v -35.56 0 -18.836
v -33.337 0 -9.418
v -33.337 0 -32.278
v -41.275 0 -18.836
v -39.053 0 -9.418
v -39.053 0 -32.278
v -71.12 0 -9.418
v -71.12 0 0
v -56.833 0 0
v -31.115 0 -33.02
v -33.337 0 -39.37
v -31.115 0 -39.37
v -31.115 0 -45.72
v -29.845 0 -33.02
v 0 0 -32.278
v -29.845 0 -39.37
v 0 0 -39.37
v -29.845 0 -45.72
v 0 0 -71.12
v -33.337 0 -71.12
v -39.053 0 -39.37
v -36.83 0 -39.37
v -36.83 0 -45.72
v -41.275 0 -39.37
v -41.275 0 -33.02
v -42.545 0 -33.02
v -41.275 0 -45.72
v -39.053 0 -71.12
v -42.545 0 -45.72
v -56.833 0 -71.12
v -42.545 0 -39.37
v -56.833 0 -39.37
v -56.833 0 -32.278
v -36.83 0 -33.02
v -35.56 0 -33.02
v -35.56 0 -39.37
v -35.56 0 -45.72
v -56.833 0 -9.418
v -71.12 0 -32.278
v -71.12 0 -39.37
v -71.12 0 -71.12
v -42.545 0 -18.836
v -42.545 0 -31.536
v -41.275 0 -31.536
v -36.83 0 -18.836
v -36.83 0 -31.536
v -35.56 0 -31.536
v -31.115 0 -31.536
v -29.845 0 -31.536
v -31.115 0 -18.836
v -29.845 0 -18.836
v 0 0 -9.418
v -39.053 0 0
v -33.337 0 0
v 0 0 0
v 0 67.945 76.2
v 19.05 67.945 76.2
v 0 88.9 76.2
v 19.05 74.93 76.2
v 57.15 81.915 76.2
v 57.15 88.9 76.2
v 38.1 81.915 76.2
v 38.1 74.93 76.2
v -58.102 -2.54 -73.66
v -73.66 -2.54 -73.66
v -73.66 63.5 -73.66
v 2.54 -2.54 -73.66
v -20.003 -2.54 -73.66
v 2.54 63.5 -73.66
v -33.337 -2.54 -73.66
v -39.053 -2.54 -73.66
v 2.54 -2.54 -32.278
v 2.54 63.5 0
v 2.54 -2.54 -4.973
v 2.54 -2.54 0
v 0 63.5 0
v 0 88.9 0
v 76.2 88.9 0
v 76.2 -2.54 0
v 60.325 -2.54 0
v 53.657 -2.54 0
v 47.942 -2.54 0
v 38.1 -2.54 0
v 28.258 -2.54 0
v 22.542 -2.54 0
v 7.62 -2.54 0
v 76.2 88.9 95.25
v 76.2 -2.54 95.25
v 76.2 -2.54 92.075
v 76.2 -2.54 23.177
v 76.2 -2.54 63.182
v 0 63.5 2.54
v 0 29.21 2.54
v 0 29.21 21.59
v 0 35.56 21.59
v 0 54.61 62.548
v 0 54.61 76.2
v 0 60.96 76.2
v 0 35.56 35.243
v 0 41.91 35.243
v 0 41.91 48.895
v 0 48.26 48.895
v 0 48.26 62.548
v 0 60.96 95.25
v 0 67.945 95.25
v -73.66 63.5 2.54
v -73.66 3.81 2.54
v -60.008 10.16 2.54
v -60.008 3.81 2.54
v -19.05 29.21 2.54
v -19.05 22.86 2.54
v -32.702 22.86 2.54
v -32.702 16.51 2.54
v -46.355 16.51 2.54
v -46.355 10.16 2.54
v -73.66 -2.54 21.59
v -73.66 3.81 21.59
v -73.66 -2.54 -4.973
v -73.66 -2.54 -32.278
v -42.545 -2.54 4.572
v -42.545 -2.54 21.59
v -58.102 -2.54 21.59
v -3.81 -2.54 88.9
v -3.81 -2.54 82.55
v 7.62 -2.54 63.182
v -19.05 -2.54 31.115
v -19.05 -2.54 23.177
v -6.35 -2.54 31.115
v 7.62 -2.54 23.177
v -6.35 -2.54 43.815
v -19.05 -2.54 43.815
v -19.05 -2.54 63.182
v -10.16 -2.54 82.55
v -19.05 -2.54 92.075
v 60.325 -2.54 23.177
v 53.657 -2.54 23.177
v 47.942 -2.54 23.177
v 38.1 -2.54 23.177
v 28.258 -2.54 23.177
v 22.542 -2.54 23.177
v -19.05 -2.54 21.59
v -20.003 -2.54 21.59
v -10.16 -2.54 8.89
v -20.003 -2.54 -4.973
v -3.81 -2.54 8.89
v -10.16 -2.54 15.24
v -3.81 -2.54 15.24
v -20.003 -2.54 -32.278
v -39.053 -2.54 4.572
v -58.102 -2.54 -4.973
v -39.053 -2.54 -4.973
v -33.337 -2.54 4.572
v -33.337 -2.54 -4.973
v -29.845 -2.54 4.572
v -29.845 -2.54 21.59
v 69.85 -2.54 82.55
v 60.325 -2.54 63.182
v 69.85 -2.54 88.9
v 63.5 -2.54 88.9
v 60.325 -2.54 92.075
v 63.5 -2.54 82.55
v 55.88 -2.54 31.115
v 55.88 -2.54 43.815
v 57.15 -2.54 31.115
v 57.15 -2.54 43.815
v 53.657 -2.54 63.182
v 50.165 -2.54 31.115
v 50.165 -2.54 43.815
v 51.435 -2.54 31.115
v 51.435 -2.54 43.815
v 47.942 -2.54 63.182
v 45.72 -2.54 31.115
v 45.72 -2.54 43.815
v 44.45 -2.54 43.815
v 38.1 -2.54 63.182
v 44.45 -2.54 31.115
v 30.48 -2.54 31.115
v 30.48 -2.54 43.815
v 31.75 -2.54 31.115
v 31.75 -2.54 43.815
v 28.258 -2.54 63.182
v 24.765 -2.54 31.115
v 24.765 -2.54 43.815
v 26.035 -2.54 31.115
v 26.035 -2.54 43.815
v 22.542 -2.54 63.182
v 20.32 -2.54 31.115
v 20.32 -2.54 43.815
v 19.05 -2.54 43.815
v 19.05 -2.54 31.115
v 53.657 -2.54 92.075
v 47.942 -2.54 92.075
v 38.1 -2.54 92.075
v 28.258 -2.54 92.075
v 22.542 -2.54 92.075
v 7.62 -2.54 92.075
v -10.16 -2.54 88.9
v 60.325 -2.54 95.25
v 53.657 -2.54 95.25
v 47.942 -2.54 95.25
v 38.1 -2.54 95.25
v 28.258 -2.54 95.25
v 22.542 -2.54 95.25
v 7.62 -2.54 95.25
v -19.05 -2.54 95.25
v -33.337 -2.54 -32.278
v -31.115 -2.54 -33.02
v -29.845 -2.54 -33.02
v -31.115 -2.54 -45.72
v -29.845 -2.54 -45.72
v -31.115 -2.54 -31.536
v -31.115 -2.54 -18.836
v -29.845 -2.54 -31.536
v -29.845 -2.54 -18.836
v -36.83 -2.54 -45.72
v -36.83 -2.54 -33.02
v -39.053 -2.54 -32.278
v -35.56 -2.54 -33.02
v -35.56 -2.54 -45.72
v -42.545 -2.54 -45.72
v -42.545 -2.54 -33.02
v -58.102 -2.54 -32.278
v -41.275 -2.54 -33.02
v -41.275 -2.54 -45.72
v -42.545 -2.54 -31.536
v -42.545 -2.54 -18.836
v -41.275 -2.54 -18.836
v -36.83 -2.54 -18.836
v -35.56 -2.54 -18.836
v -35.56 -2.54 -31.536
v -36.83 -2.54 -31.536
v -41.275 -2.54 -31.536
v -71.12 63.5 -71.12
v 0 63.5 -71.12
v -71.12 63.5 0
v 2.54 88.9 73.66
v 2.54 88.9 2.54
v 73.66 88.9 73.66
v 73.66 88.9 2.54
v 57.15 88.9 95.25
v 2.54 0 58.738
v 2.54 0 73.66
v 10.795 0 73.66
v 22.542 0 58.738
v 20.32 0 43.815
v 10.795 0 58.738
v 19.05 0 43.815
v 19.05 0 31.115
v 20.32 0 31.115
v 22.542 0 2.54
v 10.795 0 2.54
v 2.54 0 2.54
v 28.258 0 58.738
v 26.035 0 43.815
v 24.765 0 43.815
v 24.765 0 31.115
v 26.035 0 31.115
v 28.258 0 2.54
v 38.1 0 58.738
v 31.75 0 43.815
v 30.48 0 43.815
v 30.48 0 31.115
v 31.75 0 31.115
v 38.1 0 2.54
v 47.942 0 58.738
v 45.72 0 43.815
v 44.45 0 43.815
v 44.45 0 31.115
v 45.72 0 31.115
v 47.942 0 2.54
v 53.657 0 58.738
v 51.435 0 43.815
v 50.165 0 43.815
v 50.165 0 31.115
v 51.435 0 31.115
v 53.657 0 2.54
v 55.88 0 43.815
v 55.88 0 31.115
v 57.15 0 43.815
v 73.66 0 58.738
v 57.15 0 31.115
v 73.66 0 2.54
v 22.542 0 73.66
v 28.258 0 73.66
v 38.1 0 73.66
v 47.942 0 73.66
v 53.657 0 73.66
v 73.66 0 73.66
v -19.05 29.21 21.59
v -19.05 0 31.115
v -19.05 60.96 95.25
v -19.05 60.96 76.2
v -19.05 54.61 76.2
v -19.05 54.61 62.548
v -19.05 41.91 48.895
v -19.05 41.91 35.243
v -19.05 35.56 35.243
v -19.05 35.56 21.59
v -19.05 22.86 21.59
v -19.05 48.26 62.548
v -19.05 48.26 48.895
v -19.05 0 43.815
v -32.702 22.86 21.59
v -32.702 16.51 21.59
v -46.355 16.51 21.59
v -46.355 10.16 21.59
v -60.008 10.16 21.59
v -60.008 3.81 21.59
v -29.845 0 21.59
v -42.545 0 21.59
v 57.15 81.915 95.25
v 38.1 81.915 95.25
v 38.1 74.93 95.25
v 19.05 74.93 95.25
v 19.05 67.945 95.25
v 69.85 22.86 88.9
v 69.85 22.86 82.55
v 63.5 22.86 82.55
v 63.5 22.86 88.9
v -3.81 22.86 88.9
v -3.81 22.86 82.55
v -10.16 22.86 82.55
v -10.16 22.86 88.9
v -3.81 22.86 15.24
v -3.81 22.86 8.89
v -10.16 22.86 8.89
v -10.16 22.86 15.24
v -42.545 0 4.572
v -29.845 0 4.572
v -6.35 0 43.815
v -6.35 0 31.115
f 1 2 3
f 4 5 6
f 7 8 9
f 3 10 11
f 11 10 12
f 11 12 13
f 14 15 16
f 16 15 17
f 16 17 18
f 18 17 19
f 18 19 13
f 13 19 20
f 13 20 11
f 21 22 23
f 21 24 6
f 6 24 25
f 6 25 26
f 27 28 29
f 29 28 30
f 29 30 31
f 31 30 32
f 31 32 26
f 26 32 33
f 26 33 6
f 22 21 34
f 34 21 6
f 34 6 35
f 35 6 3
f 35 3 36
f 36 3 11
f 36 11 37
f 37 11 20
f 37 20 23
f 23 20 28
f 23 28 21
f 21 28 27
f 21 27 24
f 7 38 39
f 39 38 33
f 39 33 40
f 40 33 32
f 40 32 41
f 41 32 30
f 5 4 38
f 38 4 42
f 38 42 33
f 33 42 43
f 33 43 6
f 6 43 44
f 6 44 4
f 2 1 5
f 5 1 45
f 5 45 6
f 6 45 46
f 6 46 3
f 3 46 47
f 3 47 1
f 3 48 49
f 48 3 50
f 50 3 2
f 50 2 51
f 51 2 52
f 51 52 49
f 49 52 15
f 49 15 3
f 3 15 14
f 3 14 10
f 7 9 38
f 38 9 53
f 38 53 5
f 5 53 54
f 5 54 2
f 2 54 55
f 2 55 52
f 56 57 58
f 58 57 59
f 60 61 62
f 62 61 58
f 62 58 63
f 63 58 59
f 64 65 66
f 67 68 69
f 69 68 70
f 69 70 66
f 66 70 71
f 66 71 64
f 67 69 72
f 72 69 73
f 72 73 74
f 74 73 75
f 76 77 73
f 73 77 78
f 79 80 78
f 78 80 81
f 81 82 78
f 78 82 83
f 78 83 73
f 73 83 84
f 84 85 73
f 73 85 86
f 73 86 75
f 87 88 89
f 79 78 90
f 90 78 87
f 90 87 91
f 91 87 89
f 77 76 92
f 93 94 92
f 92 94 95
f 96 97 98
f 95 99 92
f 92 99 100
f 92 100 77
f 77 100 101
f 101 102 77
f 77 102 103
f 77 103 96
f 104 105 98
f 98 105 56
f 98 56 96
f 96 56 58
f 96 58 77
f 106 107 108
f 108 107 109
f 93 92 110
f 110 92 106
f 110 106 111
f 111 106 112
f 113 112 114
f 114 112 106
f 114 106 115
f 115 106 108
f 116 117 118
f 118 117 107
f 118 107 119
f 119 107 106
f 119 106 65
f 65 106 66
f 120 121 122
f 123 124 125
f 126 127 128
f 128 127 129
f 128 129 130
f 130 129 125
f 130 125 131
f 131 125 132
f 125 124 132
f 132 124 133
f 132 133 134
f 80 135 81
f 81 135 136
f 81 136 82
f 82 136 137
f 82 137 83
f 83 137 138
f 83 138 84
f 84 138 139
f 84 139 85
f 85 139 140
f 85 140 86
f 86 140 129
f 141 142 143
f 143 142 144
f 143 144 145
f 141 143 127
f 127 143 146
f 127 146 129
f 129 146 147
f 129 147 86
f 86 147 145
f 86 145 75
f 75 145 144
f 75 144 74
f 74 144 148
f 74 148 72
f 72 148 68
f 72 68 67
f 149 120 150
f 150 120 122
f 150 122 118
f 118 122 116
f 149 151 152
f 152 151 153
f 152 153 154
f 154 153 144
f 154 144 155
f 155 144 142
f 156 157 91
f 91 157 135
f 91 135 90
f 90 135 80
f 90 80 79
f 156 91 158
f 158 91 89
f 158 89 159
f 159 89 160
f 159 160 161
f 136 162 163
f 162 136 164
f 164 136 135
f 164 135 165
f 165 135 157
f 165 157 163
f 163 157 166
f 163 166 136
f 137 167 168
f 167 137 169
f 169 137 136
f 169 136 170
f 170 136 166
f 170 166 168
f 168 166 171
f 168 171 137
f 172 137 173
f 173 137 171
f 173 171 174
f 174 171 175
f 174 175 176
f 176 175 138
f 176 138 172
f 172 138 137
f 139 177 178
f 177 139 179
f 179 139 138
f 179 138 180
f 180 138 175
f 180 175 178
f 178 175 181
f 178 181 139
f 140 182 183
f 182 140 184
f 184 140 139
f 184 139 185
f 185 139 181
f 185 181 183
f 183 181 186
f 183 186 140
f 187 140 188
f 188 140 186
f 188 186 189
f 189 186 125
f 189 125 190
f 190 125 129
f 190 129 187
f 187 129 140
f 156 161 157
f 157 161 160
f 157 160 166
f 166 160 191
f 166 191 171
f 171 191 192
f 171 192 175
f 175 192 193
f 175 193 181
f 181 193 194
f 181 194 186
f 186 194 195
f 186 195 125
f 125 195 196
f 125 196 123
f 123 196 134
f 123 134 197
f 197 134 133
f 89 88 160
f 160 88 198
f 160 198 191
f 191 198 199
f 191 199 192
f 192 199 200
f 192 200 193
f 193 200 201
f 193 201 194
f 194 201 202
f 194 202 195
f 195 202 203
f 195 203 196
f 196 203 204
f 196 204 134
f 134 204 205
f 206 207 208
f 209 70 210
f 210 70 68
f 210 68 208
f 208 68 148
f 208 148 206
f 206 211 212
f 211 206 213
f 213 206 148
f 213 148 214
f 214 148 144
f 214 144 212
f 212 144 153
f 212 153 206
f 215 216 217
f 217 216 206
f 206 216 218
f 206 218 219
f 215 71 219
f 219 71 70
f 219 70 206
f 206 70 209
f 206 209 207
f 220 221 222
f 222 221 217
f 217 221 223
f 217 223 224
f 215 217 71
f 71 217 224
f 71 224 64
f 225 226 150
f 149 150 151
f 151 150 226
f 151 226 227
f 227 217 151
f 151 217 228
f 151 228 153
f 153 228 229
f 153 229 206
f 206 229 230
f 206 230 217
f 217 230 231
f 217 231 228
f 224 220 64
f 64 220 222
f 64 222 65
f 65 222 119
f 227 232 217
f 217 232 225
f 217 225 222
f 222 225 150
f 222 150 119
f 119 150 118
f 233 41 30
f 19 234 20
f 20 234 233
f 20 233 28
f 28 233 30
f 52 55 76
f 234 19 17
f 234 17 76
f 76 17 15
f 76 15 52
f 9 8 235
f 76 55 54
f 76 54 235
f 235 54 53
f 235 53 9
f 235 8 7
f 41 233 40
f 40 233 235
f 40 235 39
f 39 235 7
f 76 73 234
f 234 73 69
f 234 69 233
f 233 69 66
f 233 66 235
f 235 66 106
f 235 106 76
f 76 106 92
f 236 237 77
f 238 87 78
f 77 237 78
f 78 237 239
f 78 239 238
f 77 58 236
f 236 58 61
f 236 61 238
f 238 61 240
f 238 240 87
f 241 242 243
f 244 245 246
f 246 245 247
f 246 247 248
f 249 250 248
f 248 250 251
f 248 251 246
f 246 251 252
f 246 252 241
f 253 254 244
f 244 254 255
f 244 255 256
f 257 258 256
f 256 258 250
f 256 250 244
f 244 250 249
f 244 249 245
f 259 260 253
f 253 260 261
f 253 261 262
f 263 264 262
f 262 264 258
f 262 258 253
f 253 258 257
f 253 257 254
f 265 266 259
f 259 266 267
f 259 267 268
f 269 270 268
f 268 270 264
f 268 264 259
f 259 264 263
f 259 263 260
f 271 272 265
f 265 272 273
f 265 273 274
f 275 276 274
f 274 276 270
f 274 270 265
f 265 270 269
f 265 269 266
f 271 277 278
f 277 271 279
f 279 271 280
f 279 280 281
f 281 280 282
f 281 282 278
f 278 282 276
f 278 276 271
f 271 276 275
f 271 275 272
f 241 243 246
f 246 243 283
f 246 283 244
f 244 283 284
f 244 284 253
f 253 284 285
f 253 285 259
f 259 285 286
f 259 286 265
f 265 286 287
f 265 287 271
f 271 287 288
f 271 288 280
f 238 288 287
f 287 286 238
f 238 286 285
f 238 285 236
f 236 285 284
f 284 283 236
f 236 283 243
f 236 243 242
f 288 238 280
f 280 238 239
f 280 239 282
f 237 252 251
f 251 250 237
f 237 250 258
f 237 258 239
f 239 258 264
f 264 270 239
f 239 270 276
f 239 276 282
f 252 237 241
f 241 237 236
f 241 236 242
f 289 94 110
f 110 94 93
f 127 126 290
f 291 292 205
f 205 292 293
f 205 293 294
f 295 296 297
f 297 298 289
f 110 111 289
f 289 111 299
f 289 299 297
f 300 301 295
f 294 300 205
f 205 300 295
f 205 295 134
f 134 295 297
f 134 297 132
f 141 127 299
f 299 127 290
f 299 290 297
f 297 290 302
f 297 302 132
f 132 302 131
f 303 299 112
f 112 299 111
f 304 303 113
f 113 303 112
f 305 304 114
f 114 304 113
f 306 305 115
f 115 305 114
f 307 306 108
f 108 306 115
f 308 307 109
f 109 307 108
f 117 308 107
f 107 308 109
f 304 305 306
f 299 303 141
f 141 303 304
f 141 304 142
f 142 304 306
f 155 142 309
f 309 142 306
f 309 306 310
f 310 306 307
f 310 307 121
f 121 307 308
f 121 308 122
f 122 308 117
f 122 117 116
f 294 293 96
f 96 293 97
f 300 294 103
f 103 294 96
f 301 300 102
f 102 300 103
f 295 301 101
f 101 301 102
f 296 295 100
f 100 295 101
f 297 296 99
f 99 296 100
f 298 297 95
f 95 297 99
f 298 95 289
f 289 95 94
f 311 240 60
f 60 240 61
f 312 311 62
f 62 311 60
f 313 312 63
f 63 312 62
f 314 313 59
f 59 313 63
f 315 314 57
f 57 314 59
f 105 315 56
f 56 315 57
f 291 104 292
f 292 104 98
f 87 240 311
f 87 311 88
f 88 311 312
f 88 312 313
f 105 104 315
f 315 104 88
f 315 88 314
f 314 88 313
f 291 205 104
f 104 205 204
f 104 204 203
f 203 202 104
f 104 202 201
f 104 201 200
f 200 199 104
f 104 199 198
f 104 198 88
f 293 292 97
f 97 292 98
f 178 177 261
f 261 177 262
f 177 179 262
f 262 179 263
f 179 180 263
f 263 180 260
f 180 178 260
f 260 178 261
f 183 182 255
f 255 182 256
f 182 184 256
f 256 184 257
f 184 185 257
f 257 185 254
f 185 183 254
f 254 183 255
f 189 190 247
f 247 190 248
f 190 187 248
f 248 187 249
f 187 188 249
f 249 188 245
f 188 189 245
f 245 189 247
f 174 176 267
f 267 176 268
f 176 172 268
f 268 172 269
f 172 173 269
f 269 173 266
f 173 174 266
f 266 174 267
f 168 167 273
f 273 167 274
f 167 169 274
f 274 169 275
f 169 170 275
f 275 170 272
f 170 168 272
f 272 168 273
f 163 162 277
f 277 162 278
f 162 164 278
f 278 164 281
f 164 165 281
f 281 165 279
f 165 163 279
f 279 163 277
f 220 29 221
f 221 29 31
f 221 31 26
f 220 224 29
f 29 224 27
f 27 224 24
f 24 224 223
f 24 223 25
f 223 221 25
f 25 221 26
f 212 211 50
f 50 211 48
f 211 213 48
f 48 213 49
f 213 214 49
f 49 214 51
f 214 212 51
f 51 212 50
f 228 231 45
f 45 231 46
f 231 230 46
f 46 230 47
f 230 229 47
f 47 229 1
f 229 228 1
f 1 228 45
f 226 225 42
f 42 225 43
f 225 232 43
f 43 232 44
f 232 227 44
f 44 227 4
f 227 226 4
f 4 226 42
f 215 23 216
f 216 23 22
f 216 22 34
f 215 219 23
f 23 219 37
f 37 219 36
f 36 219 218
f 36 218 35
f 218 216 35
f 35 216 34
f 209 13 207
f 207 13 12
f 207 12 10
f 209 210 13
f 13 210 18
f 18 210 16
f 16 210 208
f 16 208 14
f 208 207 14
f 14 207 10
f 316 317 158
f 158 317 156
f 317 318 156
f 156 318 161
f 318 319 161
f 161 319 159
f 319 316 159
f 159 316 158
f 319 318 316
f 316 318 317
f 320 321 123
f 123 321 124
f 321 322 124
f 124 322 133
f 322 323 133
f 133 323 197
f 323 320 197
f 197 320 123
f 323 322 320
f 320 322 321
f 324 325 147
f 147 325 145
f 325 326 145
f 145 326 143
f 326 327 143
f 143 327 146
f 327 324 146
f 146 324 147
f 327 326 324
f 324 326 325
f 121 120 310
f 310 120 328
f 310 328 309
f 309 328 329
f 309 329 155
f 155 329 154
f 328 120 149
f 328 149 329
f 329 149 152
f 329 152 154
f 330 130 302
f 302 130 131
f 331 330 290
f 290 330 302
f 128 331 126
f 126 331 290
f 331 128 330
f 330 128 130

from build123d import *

# Parameters (mm, degrees)
BOSS_EXTRUDE1_DEPTH     = 2.54
SKETCH1_9_W             = 71.12
SKETCH1_9_H             = 71.12
BOSS_EXTRUDE3_DEPTH     = 63.5
SKETCH5_W               = 76.2
SKETCH5_H               = 76.2
SKETCH5_W_2             = 71.12
SKETCH5_H_2             = 71.12
BOSS_EXTRUDE4_DEPTH     = 25.4
BOSS_EXTRUDE7_DEPTH     = 19.05
BOSS_EXTRUDE11_DEPTH    = 19.05
SKETCH15_W              = 19.05
SKETCH15_H              = 6.35
BOSS_EXTRUDE12_DEPTH    = 19.05
SKETCH16_W              = 1.27
SKETCH16_H              = 12.7
CUT_EXTRUDE1_DEPTH      = 151.937776915
SKETCH17_W              = 6.35
SKETCH17_H              = 6.35
CUT_EXTRUDE2_DEPTH      = 25.4
CUT_EXTRUDE3_DEPTH      = 151.937776915
CUT_EXTRUDE3_DEPTH_BACK = 17.018
CUT_EXTRUDE4_DEPTH      = 162.394965845
CUT_EXTRUDE4_DEPTH_BACK = 12.7
SKETCH20_W              = 12.7
SKETCH20_H              = 2.54


with BuildPart() as part:
    # Sketch1 → Boss-Extrude1 (new body)
    with BuildSketch(Plane(origin=(0, 0, 0), x_dir=(1, 0, 0), z_dir=(0, 1, 0))):
        Polygon((-73.66, 73.66), (-73.66, -2.54), (0, -2.54), (0, -76.2), (76.2, -76.2), (76.2, 0), (2.54, 0), (2.54, 73.66), align=None)
    extrude(amount=-BOSS_EXTRUDE1_DEPTH)

    # Sketch1<9> → Boss-Extrude3 (add)
    with BuildSketch(Plane(origin=(0, 0, 0), x_dir=(1, 0, 0), z_dir=(0, 1, 0))):
        Polygon((2.54, 73.66), (-73.66, 73.66), (-73.66, -2.54), (0, -2.54), (0, -76.2), (76.2, -76.2), (76.2, 0), (2.54, 0), align=None)
        with Locations((38.1, -38.1)):
            Rectangle(SKETCH1_9_W, SKETCH1_9_H, mode=Mode.SUBTRACT)
        with Locations((-35.56, 35.56)):
            Rectangle(SKETCH1_9_W, SKETCH1_9_H, mode=Mode.SUBTRACT)
    extrude(amount=BOSS_EXTRUDE3_DEPTH)

    # Sketch5 → Boss-Extrude4 (add)
    with BuildSketch(Plane(origin=(0, 63.5, 0), x_dir=(1, 0, 0), z_dir=(0, 1, 0))):
        with Locations((38.1, -38.1)):
            Rectangle(SKETCH5_W, SKETCH5_H)
        with Locations((38.1, -38.1)):
            Rectangle(SKETCH5_W_2, SKETCH5_H_2, mode=Mode.SUBTRACT)
    extrude(amount=BOSS_EXTRUDE4_DEPTH)

    # Sketch9 → Boss-Extrude7 (add)
    with BuildSketch(Plane.XY.offset(2.54)):
        Polygon((-73.66, 3.81), (-73.66, -2.54), (0, -2.54), (0, 29.21), (-19.05, 29.21), (-19.05, 22.86), (-32.7025, 22.86), (-32.7025, 16.51), (-46.355, 16.51), (-46.355, 10.16), (-60.0075, 10.16), (-60.0075, 3.81), align=None)
    extrude(amount=BOSS_EXTRUDE7_DEPTH)

    # Sketch11 → Boss-Extrude11 (add)
    with BuildSketch(Plane.ZY):
        Polygon((76.2, 29.21), (21.59, 29.21), (21.59, 0), (21.59, -2.54), (76.2, -2.54), (76.2, 0), align=None)
        Polygon((21.59, 35.56), (21.59, 29.21), (76.2, 29.21), (76.2, 48.26), (76.2, 54.61), (62.5475, 54.61), (62.5475, 48.26), (48.895, 48.26), (48.895, 41.91), (35.2425, 41.91), (35.2425, 35.56), align=None)
    extrude(amount=BOSS_EXTRUDE11_DEPTH)

    # Sketch15 → Boss-Extrude12 (add)
    with BuildSketch(Plane.XY.offset(76.2)):
        Polygon((0, 60.96), (76.2, 60.96), (76.2, 88.9), (57.15, 88.9), (57.15, 81.915), (38.1, 81.915), (38.1, 74.93), (19.05, 74.93), (19.05, 67.945), (0, 67.945), align=None)
        Polygon((-19.05, 54.61), (-19.05, -2.54), (76.2, -2.54), (76.2, 60.96), (0, 60.96), (0, 54.61), align=None)
        with Locations((-9.525, 57.785)):
            Rectangle(SKETCH15_W, SKETCH15_H)
    extrude(amount=BOSS_EXTRUDE12_DEPTH)

    # Sketch16 → Cut-Extrude1 (cut, through all)
    with BuildSketch(Plane(origin=(0, 0, 0), x_dir=(1, 0, 0), z_dir=(0, 1, 0))):
        with Locations((-41.91, 25.185614026)):
            Rectangle(SKETCH16_W, SKETCH16_H)
        with Locations((-41.91, 39.37)):
            Rectangle(SKETCH16_W, SKETCH16_H)
        with Locations((-36.195, 39.37)):
            Rectangle(SKETCH16_W, SKETCH16_H)
        with Locations((-30.48, 39.37)):
            Rectangle(SKETCH16_W, SKETCH16_H)
        with Locations((-36.195, 25.185614026)):
            Rectangle(SKETCH16_W, SKETCH16_H)
        with Locations((-30.48, 25.185614026)):
            Rectangle(SKETCH16_W, SKETCH16_H)
        with Locations((19.685, -37.465)):
            Rectangle(SKETCH16_W, SKETCH16_H)
        with Locations((25.4, -37.465)):
            Rectangle(SKETCH16_W, SKETCH16_H)
        with Locations((31.115, -37.465)):
            Rectangle(SKETCH16_W, SKETCH16_H)
        with Locations((45.085, -37.465)):
            Rectangle(SKETCH16_W, SKETCH16_H)
        with Locations((50.8, -37.465)):
            Rectangle(SKETCH16_W, SKETCH16_H)
        with Locations((56.515, -37.465)):
            Rectangle(SKETCH16_W, SKETCH16_H)
    extrude(amount=-CUT_EXTRUDE1_DEPTH, mode=Mode.SUBTRACT)

    # Sketch17 → Cut-Extrude2 (cut)
    with BuildSketch(Plane.XZ.offset(2.54)):
        with Locations((-6.985, 12.065)):
            Rectangle(SKETCH17_W, SKETCH17_H)
        with Locations((-6.985, 85.725)):
            Rectangle(SKETCH17_W, SKETCH17_H)
        with Locations((66.675, 85.725)):
            Rectangle(SKETCH17_W, SKETCH17_H)
    extrude(amount=-CUT_EXTRUDE2_DEPTH, mode=Mode.SUBTRACT)

    # Sketch19 → Cut-Extrude3 (cut, two sides: drawn at the far end of the back side and taken through both)
    with BuildSketch(Plane.XY.offset(21.59).offset(-CUT_EXTRUDE3_DEPTH_BACK)):
        Polygon((-29.845, -312.284215123), (-29.845, -2.54), (-29.845, 0), (-42.545, 0), (-42.545, -2.54), (-42.545, -312.284215123), (-42.545, -931.77264537), (-29.845, -931.77264537), align=None)
    extrude(amount=CUT_EXTRUDE3_DEPTH + CUT_EXTRUDE3_DEPTH_BACK, mode=Mode.SUBTRACT)

    # Sketch20 → Cut-Extrude4 (cut, two sides: drawn at the far end of the back side and taken through both)
    with BuildSketch(Plane.ZY.offset(19.05).offset(-CUT_EXTRUDE4_DEPTH_BACK)):
        with Locations((37.465, -1.27)):
            Rectangle(SKETCH20_W, SKETCH20_H)
    extrude(amount=CUT_EXTRUDE4_DEPTH + CUT_EXTRUDE4_DEPTH_BACK, mode=Mode.SUBTRACT)


solid = part.part
